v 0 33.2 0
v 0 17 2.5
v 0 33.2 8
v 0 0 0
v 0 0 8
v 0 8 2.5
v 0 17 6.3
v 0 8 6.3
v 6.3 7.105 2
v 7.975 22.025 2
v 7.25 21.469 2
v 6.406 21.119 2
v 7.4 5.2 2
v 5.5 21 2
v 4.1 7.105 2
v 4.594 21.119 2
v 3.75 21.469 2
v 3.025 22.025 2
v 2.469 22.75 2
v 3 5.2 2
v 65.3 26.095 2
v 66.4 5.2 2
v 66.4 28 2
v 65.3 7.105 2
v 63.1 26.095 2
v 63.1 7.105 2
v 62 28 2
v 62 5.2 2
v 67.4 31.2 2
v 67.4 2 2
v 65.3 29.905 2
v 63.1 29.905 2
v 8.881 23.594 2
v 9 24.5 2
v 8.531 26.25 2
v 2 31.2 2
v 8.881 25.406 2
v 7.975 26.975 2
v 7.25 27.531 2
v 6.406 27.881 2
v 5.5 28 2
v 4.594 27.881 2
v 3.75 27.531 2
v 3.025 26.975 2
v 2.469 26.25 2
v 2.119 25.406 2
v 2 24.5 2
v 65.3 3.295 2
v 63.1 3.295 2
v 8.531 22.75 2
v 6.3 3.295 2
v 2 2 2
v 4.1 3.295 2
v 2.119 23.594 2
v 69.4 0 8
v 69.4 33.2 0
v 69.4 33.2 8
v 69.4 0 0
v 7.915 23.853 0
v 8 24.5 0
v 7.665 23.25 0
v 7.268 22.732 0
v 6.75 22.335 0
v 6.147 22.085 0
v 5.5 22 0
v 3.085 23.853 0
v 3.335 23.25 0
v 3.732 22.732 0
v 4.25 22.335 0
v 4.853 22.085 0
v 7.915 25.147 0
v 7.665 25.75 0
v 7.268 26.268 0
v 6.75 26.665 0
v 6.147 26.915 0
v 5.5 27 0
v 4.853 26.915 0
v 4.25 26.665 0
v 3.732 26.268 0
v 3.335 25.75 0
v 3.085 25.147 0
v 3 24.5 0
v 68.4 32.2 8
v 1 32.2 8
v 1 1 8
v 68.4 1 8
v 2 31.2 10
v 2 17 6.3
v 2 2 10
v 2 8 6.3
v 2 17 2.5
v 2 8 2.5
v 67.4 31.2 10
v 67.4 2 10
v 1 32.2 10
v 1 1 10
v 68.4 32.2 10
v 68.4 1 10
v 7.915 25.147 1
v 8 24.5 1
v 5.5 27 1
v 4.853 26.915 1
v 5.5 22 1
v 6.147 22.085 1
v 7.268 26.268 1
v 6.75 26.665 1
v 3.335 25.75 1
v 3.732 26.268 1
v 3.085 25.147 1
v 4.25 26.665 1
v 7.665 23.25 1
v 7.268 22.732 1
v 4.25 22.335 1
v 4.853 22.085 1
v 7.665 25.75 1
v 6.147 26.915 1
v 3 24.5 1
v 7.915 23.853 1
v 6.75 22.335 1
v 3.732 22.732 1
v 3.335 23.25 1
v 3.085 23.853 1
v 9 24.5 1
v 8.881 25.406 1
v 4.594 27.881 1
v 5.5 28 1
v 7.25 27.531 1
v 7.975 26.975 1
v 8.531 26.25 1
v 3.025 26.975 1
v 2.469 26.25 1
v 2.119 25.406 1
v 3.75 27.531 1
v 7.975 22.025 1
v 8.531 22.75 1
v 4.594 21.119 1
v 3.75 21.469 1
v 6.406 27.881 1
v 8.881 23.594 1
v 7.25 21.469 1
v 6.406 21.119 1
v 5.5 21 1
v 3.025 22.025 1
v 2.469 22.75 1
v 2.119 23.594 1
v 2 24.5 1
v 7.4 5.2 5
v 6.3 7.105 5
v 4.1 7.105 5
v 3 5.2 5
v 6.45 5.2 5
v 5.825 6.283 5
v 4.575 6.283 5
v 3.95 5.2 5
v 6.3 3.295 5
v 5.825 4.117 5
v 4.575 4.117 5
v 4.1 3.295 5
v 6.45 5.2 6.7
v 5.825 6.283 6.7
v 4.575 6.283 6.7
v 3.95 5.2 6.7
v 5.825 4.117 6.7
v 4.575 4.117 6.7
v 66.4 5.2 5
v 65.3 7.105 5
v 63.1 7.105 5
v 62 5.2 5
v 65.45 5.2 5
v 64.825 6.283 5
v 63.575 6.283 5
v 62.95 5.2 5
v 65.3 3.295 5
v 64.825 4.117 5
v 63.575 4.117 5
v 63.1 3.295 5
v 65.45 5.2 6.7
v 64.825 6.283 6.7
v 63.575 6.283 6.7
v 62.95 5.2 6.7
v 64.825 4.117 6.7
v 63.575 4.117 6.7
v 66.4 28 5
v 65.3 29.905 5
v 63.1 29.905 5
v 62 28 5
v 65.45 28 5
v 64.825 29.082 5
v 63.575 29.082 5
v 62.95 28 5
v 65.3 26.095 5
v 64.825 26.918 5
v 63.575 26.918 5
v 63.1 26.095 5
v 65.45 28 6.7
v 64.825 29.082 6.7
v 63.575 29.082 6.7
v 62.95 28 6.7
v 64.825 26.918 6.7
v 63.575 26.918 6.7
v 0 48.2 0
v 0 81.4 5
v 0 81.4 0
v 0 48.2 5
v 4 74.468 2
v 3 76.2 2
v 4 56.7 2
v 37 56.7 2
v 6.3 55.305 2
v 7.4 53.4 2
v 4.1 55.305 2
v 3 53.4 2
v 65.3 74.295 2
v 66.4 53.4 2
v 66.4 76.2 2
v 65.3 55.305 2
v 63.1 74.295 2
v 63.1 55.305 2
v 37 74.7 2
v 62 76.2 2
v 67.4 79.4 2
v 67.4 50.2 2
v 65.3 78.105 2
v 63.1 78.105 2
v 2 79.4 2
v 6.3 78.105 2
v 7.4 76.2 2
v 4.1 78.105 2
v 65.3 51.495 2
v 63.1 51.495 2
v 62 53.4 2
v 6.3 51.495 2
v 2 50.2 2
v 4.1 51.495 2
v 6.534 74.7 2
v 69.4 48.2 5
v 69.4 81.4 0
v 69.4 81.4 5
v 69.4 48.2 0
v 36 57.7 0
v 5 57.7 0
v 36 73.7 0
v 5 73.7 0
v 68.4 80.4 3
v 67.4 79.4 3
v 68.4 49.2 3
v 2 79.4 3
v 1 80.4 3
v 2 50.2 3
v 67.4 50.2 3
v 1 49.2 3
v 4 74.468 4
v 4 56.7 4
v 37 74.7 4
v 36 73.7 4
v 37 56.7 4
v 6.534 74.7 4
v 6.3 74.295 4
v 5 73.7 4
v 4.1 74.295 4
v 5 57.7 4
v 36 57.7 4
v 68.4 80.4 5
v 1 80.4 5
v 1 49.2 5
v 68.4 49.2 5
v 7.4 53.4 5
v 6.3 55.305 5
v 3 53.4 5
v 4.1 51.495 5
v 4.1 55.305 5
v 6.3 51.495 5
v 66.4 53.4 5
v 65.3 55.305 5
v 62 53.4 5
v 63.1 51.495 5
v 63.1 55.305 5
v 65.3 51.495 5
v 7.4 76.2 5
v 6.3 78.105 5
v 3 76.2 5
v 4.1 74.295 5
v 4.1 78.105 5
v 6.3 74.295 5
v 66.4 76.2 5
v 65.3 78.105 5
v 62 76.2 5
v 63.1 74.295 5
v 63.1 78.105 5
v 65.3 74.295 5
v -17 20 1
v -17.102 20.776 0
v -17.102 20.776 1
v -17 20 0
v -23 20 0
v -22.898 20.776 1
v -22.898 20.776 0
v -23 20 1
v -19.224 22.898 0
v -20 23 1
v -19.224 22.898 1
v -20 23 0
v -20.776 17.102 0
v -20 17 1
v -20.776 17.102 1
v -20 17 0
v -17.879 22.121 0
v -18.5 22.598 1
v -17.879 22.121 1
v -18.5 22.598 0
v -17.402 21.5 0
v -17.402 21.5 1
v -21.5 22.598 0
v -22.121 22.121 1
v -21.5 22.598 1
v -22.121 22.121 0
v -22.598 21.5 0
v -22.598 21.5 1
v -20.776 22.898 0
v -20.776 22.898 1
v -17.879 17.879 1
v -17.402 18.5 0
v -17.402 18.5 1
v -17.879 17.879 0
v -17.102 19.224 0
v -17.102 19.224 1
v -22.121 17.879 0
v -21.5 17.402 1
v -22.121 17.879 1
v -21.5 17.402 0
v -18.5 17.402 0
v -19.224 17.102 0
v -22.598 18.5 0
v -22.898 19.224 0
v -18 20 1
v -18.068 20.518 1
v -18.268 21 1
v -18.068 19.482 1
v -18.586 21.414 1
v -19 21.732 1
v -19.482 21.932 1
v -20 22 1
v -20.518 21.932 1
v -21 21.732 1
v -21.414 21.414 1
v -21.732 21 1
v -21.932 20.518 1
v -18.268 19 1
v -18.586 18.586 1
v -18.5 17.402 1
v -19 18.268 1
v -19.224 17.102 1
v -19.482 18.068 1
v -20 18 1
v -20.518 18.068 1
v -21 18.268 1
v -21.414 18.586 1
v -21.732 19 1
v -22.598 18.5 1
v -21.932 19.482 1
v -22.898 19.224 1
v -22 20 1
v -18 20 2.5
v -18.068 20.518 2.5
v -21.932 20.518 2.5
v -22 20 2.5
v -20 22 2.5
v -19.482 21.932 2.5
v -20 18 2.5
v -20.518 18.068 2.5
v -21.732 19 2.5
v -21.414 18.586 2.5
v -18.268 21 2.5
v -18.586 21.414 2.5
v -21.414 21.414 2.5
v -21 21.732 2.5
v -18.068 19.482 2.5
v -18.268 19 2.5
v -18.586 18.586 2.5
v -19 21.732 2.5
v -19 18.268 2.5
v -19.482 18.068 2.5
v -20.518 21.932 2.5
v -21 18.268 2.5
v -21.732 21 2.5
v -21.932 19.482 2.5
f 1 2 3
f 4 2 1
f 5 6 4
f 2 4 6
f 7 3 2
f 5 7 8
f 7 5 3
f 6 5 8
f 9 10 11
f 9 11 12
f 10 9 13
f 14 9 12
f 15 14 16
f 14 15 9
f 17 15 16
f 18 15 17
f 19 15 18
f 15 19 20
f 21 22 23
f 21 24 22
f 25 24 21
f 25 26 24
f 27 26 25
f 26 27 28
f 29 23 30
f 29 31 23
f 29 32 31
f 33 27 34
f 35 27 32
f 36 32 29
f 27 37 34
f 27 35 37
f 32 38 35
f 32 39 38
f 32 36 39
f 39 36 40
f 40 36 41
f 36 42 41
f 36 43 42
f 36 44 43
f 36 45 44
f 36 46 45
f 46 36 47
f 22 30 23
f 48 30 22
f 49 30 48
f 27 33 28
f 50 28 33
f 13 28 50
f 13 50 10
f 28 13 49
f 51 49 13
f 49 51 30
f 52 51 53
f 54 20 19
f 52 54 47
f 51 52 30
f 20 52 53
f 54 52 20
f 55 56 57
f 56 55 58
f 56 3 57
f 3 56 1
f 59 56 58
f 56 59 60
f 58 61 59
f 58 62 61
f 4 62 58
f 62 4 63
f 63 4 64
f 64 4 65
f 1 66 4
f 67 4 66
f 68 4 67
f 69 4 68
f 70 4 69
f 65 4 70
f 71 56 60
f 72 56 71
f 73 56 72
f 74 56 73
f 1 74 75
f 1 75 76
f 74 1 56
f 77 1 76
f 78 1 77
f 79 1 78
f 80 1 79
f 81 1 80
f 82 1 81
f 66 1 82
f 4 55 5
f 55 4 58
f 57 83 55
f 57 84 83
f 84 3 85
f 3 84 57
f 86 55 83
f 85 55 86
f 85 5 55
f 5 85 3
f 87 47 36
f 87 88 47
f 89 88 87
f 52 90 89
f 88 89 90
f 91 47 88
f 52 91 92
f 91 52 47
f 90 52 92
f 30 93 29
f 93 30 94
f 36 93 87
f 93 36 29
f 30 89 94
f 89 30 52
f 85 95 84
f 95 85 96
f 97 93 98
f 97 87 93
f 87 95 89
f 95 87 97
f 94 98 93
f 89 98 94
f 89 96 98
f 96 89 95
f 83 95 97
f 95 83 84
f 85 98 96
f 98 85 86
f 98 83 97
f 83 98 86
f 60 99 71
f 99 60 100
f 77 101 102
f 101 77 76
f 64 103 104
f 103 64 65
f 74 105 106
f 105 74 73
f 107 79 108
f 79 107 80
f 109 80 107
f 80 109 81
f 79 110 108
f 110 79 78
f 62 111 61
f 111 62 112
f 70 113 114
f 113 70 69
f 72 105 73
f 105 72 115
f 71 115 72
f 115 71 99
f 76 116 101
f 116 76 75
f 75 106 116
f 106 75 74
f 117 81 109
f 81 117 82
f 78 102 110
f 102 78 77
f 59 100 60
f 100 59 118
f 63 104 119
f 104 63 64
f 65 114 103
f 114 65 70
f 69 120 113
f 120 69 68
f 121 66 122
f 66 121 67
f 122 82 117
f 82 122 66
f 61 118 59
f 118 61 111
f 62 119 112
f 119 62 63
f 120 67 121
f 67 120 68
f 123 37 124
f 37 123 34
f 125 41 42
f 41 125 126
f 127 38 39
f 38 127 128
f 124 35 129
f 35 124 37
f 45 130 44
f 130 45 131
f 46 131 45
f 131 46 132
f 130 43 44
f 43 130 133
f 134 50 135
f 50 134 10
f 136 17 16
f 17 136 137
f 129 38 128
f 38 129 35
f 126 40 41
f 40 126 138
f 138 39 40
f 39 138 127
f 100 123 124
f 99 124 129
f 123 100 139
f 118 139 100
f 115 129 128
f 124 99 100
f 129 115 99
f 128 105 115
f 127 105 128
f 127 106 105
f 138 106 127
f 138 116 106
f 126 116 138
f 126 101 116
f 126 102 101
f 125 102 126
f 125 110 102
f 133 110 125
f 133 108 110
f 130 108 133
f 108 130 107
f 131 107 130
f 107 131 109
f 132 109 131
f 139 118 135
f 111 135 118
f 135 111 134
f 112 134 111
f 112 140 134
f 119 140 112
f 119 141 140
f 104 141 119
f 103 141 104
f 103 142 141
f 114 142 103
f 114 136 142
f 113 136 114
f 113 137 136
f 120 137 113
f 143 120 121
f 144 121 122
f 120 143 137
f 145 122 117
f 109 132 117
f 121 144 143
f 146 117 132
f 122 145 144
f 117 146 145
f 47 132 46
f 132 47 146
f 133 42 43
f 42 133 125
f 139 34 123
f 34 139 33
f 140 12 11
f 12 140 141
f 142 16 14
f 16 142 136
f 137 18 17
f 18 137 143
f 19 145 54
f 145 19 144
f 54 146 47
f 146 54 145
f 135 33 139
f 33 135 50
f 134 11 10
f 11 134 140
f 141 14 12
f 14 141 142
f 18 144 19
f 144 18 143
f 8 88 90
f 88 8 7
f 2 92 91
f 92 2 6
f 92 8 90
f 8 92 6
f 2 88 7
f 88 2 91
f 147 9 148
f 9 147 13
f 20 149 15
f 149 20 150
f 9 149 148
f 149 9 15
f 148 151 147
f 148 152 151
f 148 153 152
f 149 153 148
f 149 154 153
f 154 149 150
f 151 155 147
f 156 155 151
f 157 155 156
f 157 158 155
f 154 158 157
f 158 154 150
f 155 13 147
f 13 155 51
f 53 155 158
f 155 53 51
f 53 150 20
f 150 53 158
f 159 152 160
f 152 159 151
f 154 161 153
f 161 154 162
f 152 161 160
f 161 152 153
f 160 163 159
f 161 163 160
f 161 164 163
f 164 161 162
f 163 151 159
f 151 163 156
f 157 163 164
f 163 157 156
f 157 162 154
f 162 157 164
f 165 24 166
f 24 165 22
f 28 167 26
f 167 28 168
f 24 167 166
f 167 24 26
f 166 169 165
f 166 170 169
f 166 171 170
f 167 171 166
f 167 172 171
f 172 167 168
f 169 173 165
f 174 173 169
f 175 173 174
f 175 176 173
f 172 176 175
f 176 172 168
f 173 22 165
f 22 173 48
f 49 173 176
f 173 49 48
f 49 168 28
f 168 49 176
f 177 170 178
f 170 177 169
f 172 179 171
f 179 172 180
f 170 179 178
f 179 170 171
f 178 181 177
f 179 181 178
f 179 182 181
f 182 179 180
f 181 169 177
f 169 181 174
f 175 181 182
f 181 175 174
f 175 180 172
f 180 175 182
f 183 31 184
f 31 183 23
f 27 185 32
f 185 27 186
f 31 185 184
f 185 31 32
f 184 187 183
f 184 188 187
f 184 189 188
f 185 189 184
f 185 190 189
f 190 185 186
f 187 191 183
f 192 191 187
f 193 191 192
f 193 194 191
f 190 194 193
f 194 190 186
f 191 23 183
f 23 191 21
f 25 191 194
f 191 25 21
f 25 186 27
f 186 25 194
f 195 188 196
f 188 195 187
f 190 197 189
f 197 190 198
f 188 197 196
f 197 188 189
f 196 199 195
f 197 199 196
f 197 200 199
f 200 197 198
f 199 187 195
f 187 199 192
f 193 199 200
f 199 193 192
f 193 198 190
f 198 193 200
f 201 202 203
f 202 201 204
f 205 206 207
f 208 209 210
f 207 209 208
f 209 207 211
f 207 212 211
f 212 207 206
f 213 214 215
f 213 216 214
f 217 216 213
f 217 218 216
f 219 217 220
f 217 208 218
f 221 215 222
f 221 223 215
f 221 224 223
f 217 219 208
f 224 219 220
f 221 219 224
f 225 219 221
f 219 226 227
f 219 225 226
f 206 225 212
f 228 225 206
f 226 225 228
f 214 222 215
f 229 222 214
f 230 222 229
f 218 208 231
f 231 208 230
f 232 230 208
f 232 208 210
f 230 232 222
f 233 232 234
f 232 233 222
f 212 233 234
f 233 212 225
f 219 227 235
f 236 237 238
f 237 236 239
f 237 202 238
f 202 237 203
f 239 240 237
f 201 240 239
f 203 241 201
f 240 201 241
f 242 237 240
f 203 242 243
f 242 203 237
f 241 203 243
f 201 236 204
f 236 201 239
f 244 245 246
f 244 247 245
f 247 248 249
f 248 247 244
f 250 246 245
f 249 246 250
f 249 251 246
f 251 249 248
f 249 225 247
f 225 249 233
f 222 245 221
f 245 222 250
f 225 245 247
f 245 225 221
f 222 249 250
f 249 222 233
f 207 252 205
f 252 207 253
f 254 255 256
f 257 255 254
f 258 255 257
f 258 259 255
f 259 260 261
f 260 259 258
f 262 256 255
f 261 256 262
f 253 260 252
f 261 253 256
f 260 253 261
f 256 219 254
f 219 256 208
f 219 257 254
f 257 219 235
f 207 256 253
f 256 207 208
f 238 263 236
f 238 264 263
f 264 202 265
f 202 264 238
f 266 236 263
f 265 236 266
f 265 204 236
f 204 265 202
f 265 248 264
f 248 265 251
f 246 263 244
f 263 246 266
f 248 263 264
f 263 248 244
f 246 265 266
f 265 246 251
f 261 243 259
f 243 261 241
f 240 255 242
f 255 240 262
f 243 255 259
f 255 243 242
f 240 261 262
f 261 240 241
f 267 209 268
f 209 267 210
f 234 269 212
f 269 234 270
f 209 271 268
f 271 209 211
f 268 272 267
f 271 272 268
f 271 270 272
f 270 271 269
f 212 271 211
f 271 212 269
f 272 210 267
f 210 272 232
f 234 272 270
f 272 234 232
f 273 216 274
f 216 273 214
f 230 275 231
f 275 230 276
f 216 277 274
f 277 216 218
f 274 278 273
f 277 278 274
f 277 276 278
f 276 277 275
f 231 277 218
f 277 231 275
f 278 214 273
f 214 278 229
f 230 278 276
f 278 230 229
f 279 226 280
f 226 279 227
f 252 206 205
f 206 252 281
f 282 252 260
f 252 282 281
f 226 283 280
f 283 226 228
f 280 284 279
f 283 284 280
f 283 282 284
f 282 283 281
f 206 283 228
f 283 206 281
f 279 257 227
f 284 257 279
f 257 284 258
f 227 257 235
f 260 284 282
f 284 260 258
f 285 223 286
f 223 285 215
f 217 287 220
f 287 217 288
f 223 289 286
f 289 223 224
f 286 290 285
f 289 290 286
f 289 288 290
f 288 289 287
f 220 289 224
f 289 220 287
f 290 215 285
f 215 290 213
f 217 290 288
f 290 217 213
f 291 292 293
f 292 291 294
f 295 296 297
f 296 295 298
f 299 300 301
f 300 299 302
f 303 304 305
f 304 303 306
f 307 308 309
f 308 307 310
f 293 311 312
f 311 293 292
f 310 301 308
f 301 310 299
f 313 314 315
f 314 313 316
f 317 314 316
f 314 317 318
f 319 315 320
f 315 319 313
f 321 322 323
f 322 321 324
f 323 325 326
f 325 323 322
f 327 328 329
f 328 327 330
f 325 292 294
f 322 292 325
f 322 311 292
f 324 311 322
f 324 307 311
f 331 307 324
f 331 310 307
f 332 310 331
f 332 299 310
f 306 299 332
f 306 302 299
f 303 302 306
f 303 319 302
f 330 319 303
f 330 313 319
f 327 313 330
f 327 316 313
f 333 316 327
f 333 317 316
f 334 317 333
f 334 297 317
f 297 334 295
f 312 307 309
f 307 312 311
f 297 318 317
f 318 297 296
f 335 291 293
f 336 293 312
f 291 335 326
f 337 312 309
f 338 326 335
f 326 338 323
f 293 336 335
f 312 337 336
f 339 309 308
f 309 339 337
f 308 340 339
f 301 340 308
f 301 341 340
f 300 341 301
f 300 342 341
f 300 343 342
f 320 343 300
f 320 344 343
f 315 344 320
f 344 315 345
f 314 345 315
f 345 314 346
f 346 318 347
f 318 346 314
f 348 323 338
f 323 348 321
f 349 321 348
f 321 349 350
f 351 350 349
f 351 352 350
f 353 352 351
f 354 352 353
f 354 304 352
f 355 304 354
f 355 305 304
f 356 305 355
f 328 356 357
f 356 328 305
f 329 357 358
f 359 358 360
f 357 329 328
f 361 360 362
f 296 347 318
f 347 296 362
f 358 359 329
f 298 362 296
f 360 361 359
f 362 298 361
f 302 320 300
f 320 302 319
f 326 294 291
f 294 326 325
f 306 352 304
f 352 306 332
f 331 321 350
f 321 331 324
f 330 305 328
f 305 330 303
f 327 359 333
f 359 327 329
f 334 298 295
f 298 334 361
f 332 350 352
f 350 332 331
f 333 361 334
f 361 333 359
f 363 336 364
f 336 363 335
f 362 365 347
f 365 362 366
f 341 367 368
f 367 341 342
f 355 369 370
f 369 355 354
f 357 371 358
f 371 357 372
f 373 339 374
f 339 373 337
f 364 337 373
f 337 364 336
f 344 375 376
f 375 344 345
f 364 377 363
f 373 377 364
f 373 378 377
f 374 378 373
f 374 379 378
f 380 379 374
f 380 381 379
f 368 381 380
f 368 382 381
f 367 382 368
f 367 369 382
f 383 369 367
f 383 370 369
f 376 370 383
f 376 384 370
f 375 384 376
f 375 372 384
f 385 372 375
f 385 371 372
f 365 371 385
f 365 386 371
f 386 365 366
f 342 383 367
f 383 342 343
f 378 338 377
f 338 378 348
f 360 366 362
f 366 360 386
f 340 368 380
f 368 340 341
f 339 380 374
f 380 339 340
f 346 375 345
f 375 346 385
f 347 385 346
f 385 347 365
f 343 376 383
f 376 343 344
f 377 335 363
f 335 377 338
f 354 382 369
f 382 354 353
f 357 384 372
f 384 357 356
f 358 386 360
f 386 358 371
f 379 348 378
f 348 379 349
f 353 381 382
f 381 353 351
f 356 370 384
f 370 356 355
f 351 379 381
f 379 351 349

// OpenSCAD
// This design is parameterized based on holes in a PCB.
// It assumes that the PCB has 4 holes, evenly spaced as
// corners of a rectangle.

// Note: width refers to X axis, depth to Y, height to Z
bottom = true;
top = true;
flash_show = true;
usb = true;
reset= false;
flash = true;
// Edit these parameters for your own board dimensions
wall_thickness = 2;
floor_thickness = 2;
ceiling_thickness = 2;

bottom_wall_height = 6;
top_wall_height = 3;

//window_x = 24.6; // v3
window_x = 31.0; // Bv2
//window_y = 14.4; // v3
window_y = 16.0; // Bv2
window_ridge = 2;
// Total height of box = floor_thickness + ceiling_thickness + bottom_wall_height + top_wall_height

//hole_spacing_x = 52.8; // v3
hole_spacing_x = 59.0; // B v2
hole_spacing_y = 22.8;

hole_diameter = 2.5;
standoff_diameter = 4.4;
standoff_top = true;

// How much the PCB needs to be raised from the bottom
// to leave room for solderings and whatnot
standoff_height = 3;
board_thickness = 1.6;
facets = 6;

// padding between standoff and wall
padding_left = 1;
padding_right = 1;
padding_back = 1;
padding_front = 1;

// ridge where bottom and top off box can overlap
// Make sure this isn't less than top_wall_height
ridge_height = 2;

// flash button
button_diameter = 4.0;
button_spacing = 0.5;
button_thickness = 2.5;
button_height = wall_thickness + standoff_height - button_thickness;
button_holder_diameter = button_diameter + 2.0;
button_holder_spacing = 0.5;
button_holder_height = 1.0;

//-------------------------------------------------------------------

// Calculated globals


module ceilingless_box(width, depth, height) {
    // Floor
    cube([width, depth, floor_thickness]);
    
    // Left wall
    translate([0, 0, floor_thickness])
        cube([
            wall_thickness,
            depth,
            height]);
    
    // Right wall
    translate([width - wall_thickness, 0, floor_thickness])
        cube([
            wall_thickness,
            depth,
            height]);
    
    // Rear wall
    translate([wall_thickness, depth - wall_thickness, floor_thickness])
        cube([
            width - 2 * wall_thickness,
            wall_thickness,
            height]);
    
    // Front wall
    translate([wall_thickness, 0, floor_thickness])
        cube([
            width - 2 * wall_thickness,
            wall_thickness,
            height]);
}

module bottom_case() {
    floor_width = hole_spacing_x + standoff_diameter + padding_left + padding_right + wall_thickness * 2;
    floor_depth = hole_spacing_y + standoff_diameter + padding_front + padding_back + wall_thickness * 2;
    
    module box() {
        ceilingless_box(floor_width, floor_depth, bottom_wall_height);        
        
        // Left Ridge
        translate([
            wall_thickness / 2,
            wall_thickness / 2,
            floor_thickness + bottom_wall_height])
            cube([
                wall_thickness / 2,
                floor_depth - wall_thickness,
                ridge_height]);
        
        
        // Right Ridge
        translate([
            floor_width - wall_thickness,
            wall_thickness / 2,
            floor_thickness + bottom_wall_height])
            cube([
                wall_thickness / 2,
                floor_depth - wall_thickness,
                ridge_height]);
                
        // Rear Ridge
        translate([
            wall_thickness,
            floor_depth - wall_thickness,
            floor_thickness + bottom_wall_height])
            cube([
                floor_width - wall_thickness * 2,
                wall_thickness / 2,
                ridge_height]);
                
        // Front Ridge
        translate([
            wall_thickness,
            wall_thickness / 2,
            floor_thickness + bottom_wall_height])
            cube([
                floor_width - 2 * wall_thickness,
                wall_thickness / 2,
                ridge_height
            ]);
    }
        
    
    // Place the standoffs and through-PCB pins in the box
    module pcb_holder() {        
        base_offset_x = wall_thickness + padding_left + standoff_diameter / 2;
        base_offset_y = wall_thickness + padding_front + standoff_diameter / 2;
        
        module pin() {
            // Standoff
            translate([0, 0,  standoff_height / 2])
                cylinder(
                    r = standoff_diameter / 2,
                    h = standoff_height,
                    center = true,
                    $fn = facets);
            
            // Through-PCB pin
            translate([0, 0, 3.6])
                cylinder(
                    r = (hole_diameter / 2),
                    h = (board_thickness + 0.6),
                    center = true,
                    $fn = facets);
        }
        
        // Front left
        translate([base_offset_x, base_offset_y, floor_thickness])
            pin();
        
        // Front right
        translate([base_offset_x + hole_spacing_x, base_offset_y, floor_thickness])
            pin();
        
        // Rear left
        if (!flash) {
            translate([base_offset_x, base_offset_y + hole_spacing_y, floor_thickness])
                pin(); // pin near flash button
        }
        
        // Rear right
        translate([base_offset_x + hole_spacing_x, base_offset_y + hole_spacing_y, floor_thickness])
            pin();
        
    }
    difference () {
        box();
        if (usb == true) {
            //translate([0, 17, 2.5])  cube([3, 9, 3.8]); // DDv3
            translate([0, 8, 2.5])  cube([3, 9, 3.8]); // DDBv2
        }
        if (flash) {
            // case hole for flash button ; DDBv2
            flash_button_x = wall_thickness + padding_left + 2.5;
            flash_button_y = wall_thickness + padding_front + 21.5;
            translate([flash_button_x, flash_button_y, 0])
                cylinder(
                    d = button_diameter + button_spacing * 2,
                    h = floor_thickness,
                    center = false,
                    $fn=24);
            translate([flash_button_x, flash_button_y, button_height - button_holder_height - button_spacing])
                cylinder(
                    d = button_holder_diameter + button_spacing * 2,
                    h = floor_thickness,
                    center = false,
                    $fn=24);
        }
    }
    pcb_holder();
}

module top_case() {
    floor_width = hole_spacing_x + standoff_diameter + padding_left + padding_right + wall_thickness * 2;
    floor_depth = hole_spacing_y + standoff_diameter + padding_front + padding_back + wall_thickness * 2;
    
    module box() {
        ceilingless_box(floor_width, floor_depth, top_wall_height - ridge_height);
        //translate([7, 10, 2])  cube([window_x+window_ridge, window_y+window_ridge, 2]); // v3
        translate([4, 8.5, 2])  cube([window_x+window_ridge, window_y+window_ridge, 2]); // Bv2

        // Left Ridge
        translate([
            0,
            0,
            floor_thickness + top_wall_height - ridge_height])
            cube([
                wall_thickness / 2,
                floor_depth,
                ridge_height]);
        
        
        // Right Ridge
        translate([
            floor_width - wall_thickness / 2,
            0,
            floor_thickness + top_wall_height - ridge_height])
            cube([
                wall_thickness / 2,
                floor_depth,
                ridge_height]);
                
        // Rear Ridge
        translate([
            wall_thickness / 2,
            floor_depth - wall_thickness / 2,
            floor_thickness + top_wall_height - ridge_height])
            cube([
                floor_width - wall_thickness,
                wall_thickness / 2,
                ridge_height]);
                
        // Front Ridge
        translate([
            wall_thickness / 2,
            0,
            floor_thickness + top_wall_height - ridge_height])
            cube([
                floor_width - wall_thickness,
                wall_thickness / 2,
                ridge_height
            ]);        
    }
    
    module pcb_holder() {
        base_offset_x = wall_thickness + padding_left + standoff_diameter / 2;
        base_offset_y = wall_thickness + padding_back + standoff_diameter / 2;
        
        module pin_receiver() {
           if (standoff_top == true)
           {
               cylinder(
                        r = (standoff_diameter / 2),
                        h = standoff_height,
                        center = false,
                        $fn = facets);
           }
        }
        
        // Keep in mind that this part needs to be turned over to get the correct
        // orientation. In the design, the rear left here looks like the front left.
        
        // Rear left
        translate([base_offset_x, base_offset_y, floor_thickness])
            pin_receiver();
        
        // Rear right
        translate([base_offset_x + hole_spacing_x, base_offset_y, floor_thickness])
            pin_receiver();
        
        // Front left
        translate([base_offset_x, base_offset_y + hole_spacing_y, floor_thickness])
            pin_receiver();
        
        // Front right
        translate([base_offset_x + hole_spacing_x, base_offset_y + hole_spacing_y, floor_thickness])
            pin_receiver();
    }
    
    
    difference () {
        box();
        //translate([8, 11, -5])  cube([window_x, window_y, 10]); // v3
        translate([5, 9.5, -5])  cube([window_x, window_y, 10]); // Bv2
    if (reset==true)
     translate([12, 28,  0])
                cylinder(
                    r = 1.2,
                    h = 4,
                    center = true,
                    $fn = 24);
        
        
        }
    
    pcb_holder();
    
}

module flash_button () {
    union() {
        cylinder(
            d = button_holder_diameter,
            h = button_holder_height,
            center = false,
            $fn = 24);
        cylinder(
            d = button_diameter,
            h = button_height,
            center = false,
            $fn = 24);
    }
}

if (bottom == true) bottom_case();
if (top == true) 
{
translate([
    0,
    15 + hole_spacing_y + standoff_diameter + padding_front + padding_back + wall_thickness * 2,
    0])
    top_case();
}
if (flash_show == true) {
    translate([-20,20,0])
        flash_button();
}
